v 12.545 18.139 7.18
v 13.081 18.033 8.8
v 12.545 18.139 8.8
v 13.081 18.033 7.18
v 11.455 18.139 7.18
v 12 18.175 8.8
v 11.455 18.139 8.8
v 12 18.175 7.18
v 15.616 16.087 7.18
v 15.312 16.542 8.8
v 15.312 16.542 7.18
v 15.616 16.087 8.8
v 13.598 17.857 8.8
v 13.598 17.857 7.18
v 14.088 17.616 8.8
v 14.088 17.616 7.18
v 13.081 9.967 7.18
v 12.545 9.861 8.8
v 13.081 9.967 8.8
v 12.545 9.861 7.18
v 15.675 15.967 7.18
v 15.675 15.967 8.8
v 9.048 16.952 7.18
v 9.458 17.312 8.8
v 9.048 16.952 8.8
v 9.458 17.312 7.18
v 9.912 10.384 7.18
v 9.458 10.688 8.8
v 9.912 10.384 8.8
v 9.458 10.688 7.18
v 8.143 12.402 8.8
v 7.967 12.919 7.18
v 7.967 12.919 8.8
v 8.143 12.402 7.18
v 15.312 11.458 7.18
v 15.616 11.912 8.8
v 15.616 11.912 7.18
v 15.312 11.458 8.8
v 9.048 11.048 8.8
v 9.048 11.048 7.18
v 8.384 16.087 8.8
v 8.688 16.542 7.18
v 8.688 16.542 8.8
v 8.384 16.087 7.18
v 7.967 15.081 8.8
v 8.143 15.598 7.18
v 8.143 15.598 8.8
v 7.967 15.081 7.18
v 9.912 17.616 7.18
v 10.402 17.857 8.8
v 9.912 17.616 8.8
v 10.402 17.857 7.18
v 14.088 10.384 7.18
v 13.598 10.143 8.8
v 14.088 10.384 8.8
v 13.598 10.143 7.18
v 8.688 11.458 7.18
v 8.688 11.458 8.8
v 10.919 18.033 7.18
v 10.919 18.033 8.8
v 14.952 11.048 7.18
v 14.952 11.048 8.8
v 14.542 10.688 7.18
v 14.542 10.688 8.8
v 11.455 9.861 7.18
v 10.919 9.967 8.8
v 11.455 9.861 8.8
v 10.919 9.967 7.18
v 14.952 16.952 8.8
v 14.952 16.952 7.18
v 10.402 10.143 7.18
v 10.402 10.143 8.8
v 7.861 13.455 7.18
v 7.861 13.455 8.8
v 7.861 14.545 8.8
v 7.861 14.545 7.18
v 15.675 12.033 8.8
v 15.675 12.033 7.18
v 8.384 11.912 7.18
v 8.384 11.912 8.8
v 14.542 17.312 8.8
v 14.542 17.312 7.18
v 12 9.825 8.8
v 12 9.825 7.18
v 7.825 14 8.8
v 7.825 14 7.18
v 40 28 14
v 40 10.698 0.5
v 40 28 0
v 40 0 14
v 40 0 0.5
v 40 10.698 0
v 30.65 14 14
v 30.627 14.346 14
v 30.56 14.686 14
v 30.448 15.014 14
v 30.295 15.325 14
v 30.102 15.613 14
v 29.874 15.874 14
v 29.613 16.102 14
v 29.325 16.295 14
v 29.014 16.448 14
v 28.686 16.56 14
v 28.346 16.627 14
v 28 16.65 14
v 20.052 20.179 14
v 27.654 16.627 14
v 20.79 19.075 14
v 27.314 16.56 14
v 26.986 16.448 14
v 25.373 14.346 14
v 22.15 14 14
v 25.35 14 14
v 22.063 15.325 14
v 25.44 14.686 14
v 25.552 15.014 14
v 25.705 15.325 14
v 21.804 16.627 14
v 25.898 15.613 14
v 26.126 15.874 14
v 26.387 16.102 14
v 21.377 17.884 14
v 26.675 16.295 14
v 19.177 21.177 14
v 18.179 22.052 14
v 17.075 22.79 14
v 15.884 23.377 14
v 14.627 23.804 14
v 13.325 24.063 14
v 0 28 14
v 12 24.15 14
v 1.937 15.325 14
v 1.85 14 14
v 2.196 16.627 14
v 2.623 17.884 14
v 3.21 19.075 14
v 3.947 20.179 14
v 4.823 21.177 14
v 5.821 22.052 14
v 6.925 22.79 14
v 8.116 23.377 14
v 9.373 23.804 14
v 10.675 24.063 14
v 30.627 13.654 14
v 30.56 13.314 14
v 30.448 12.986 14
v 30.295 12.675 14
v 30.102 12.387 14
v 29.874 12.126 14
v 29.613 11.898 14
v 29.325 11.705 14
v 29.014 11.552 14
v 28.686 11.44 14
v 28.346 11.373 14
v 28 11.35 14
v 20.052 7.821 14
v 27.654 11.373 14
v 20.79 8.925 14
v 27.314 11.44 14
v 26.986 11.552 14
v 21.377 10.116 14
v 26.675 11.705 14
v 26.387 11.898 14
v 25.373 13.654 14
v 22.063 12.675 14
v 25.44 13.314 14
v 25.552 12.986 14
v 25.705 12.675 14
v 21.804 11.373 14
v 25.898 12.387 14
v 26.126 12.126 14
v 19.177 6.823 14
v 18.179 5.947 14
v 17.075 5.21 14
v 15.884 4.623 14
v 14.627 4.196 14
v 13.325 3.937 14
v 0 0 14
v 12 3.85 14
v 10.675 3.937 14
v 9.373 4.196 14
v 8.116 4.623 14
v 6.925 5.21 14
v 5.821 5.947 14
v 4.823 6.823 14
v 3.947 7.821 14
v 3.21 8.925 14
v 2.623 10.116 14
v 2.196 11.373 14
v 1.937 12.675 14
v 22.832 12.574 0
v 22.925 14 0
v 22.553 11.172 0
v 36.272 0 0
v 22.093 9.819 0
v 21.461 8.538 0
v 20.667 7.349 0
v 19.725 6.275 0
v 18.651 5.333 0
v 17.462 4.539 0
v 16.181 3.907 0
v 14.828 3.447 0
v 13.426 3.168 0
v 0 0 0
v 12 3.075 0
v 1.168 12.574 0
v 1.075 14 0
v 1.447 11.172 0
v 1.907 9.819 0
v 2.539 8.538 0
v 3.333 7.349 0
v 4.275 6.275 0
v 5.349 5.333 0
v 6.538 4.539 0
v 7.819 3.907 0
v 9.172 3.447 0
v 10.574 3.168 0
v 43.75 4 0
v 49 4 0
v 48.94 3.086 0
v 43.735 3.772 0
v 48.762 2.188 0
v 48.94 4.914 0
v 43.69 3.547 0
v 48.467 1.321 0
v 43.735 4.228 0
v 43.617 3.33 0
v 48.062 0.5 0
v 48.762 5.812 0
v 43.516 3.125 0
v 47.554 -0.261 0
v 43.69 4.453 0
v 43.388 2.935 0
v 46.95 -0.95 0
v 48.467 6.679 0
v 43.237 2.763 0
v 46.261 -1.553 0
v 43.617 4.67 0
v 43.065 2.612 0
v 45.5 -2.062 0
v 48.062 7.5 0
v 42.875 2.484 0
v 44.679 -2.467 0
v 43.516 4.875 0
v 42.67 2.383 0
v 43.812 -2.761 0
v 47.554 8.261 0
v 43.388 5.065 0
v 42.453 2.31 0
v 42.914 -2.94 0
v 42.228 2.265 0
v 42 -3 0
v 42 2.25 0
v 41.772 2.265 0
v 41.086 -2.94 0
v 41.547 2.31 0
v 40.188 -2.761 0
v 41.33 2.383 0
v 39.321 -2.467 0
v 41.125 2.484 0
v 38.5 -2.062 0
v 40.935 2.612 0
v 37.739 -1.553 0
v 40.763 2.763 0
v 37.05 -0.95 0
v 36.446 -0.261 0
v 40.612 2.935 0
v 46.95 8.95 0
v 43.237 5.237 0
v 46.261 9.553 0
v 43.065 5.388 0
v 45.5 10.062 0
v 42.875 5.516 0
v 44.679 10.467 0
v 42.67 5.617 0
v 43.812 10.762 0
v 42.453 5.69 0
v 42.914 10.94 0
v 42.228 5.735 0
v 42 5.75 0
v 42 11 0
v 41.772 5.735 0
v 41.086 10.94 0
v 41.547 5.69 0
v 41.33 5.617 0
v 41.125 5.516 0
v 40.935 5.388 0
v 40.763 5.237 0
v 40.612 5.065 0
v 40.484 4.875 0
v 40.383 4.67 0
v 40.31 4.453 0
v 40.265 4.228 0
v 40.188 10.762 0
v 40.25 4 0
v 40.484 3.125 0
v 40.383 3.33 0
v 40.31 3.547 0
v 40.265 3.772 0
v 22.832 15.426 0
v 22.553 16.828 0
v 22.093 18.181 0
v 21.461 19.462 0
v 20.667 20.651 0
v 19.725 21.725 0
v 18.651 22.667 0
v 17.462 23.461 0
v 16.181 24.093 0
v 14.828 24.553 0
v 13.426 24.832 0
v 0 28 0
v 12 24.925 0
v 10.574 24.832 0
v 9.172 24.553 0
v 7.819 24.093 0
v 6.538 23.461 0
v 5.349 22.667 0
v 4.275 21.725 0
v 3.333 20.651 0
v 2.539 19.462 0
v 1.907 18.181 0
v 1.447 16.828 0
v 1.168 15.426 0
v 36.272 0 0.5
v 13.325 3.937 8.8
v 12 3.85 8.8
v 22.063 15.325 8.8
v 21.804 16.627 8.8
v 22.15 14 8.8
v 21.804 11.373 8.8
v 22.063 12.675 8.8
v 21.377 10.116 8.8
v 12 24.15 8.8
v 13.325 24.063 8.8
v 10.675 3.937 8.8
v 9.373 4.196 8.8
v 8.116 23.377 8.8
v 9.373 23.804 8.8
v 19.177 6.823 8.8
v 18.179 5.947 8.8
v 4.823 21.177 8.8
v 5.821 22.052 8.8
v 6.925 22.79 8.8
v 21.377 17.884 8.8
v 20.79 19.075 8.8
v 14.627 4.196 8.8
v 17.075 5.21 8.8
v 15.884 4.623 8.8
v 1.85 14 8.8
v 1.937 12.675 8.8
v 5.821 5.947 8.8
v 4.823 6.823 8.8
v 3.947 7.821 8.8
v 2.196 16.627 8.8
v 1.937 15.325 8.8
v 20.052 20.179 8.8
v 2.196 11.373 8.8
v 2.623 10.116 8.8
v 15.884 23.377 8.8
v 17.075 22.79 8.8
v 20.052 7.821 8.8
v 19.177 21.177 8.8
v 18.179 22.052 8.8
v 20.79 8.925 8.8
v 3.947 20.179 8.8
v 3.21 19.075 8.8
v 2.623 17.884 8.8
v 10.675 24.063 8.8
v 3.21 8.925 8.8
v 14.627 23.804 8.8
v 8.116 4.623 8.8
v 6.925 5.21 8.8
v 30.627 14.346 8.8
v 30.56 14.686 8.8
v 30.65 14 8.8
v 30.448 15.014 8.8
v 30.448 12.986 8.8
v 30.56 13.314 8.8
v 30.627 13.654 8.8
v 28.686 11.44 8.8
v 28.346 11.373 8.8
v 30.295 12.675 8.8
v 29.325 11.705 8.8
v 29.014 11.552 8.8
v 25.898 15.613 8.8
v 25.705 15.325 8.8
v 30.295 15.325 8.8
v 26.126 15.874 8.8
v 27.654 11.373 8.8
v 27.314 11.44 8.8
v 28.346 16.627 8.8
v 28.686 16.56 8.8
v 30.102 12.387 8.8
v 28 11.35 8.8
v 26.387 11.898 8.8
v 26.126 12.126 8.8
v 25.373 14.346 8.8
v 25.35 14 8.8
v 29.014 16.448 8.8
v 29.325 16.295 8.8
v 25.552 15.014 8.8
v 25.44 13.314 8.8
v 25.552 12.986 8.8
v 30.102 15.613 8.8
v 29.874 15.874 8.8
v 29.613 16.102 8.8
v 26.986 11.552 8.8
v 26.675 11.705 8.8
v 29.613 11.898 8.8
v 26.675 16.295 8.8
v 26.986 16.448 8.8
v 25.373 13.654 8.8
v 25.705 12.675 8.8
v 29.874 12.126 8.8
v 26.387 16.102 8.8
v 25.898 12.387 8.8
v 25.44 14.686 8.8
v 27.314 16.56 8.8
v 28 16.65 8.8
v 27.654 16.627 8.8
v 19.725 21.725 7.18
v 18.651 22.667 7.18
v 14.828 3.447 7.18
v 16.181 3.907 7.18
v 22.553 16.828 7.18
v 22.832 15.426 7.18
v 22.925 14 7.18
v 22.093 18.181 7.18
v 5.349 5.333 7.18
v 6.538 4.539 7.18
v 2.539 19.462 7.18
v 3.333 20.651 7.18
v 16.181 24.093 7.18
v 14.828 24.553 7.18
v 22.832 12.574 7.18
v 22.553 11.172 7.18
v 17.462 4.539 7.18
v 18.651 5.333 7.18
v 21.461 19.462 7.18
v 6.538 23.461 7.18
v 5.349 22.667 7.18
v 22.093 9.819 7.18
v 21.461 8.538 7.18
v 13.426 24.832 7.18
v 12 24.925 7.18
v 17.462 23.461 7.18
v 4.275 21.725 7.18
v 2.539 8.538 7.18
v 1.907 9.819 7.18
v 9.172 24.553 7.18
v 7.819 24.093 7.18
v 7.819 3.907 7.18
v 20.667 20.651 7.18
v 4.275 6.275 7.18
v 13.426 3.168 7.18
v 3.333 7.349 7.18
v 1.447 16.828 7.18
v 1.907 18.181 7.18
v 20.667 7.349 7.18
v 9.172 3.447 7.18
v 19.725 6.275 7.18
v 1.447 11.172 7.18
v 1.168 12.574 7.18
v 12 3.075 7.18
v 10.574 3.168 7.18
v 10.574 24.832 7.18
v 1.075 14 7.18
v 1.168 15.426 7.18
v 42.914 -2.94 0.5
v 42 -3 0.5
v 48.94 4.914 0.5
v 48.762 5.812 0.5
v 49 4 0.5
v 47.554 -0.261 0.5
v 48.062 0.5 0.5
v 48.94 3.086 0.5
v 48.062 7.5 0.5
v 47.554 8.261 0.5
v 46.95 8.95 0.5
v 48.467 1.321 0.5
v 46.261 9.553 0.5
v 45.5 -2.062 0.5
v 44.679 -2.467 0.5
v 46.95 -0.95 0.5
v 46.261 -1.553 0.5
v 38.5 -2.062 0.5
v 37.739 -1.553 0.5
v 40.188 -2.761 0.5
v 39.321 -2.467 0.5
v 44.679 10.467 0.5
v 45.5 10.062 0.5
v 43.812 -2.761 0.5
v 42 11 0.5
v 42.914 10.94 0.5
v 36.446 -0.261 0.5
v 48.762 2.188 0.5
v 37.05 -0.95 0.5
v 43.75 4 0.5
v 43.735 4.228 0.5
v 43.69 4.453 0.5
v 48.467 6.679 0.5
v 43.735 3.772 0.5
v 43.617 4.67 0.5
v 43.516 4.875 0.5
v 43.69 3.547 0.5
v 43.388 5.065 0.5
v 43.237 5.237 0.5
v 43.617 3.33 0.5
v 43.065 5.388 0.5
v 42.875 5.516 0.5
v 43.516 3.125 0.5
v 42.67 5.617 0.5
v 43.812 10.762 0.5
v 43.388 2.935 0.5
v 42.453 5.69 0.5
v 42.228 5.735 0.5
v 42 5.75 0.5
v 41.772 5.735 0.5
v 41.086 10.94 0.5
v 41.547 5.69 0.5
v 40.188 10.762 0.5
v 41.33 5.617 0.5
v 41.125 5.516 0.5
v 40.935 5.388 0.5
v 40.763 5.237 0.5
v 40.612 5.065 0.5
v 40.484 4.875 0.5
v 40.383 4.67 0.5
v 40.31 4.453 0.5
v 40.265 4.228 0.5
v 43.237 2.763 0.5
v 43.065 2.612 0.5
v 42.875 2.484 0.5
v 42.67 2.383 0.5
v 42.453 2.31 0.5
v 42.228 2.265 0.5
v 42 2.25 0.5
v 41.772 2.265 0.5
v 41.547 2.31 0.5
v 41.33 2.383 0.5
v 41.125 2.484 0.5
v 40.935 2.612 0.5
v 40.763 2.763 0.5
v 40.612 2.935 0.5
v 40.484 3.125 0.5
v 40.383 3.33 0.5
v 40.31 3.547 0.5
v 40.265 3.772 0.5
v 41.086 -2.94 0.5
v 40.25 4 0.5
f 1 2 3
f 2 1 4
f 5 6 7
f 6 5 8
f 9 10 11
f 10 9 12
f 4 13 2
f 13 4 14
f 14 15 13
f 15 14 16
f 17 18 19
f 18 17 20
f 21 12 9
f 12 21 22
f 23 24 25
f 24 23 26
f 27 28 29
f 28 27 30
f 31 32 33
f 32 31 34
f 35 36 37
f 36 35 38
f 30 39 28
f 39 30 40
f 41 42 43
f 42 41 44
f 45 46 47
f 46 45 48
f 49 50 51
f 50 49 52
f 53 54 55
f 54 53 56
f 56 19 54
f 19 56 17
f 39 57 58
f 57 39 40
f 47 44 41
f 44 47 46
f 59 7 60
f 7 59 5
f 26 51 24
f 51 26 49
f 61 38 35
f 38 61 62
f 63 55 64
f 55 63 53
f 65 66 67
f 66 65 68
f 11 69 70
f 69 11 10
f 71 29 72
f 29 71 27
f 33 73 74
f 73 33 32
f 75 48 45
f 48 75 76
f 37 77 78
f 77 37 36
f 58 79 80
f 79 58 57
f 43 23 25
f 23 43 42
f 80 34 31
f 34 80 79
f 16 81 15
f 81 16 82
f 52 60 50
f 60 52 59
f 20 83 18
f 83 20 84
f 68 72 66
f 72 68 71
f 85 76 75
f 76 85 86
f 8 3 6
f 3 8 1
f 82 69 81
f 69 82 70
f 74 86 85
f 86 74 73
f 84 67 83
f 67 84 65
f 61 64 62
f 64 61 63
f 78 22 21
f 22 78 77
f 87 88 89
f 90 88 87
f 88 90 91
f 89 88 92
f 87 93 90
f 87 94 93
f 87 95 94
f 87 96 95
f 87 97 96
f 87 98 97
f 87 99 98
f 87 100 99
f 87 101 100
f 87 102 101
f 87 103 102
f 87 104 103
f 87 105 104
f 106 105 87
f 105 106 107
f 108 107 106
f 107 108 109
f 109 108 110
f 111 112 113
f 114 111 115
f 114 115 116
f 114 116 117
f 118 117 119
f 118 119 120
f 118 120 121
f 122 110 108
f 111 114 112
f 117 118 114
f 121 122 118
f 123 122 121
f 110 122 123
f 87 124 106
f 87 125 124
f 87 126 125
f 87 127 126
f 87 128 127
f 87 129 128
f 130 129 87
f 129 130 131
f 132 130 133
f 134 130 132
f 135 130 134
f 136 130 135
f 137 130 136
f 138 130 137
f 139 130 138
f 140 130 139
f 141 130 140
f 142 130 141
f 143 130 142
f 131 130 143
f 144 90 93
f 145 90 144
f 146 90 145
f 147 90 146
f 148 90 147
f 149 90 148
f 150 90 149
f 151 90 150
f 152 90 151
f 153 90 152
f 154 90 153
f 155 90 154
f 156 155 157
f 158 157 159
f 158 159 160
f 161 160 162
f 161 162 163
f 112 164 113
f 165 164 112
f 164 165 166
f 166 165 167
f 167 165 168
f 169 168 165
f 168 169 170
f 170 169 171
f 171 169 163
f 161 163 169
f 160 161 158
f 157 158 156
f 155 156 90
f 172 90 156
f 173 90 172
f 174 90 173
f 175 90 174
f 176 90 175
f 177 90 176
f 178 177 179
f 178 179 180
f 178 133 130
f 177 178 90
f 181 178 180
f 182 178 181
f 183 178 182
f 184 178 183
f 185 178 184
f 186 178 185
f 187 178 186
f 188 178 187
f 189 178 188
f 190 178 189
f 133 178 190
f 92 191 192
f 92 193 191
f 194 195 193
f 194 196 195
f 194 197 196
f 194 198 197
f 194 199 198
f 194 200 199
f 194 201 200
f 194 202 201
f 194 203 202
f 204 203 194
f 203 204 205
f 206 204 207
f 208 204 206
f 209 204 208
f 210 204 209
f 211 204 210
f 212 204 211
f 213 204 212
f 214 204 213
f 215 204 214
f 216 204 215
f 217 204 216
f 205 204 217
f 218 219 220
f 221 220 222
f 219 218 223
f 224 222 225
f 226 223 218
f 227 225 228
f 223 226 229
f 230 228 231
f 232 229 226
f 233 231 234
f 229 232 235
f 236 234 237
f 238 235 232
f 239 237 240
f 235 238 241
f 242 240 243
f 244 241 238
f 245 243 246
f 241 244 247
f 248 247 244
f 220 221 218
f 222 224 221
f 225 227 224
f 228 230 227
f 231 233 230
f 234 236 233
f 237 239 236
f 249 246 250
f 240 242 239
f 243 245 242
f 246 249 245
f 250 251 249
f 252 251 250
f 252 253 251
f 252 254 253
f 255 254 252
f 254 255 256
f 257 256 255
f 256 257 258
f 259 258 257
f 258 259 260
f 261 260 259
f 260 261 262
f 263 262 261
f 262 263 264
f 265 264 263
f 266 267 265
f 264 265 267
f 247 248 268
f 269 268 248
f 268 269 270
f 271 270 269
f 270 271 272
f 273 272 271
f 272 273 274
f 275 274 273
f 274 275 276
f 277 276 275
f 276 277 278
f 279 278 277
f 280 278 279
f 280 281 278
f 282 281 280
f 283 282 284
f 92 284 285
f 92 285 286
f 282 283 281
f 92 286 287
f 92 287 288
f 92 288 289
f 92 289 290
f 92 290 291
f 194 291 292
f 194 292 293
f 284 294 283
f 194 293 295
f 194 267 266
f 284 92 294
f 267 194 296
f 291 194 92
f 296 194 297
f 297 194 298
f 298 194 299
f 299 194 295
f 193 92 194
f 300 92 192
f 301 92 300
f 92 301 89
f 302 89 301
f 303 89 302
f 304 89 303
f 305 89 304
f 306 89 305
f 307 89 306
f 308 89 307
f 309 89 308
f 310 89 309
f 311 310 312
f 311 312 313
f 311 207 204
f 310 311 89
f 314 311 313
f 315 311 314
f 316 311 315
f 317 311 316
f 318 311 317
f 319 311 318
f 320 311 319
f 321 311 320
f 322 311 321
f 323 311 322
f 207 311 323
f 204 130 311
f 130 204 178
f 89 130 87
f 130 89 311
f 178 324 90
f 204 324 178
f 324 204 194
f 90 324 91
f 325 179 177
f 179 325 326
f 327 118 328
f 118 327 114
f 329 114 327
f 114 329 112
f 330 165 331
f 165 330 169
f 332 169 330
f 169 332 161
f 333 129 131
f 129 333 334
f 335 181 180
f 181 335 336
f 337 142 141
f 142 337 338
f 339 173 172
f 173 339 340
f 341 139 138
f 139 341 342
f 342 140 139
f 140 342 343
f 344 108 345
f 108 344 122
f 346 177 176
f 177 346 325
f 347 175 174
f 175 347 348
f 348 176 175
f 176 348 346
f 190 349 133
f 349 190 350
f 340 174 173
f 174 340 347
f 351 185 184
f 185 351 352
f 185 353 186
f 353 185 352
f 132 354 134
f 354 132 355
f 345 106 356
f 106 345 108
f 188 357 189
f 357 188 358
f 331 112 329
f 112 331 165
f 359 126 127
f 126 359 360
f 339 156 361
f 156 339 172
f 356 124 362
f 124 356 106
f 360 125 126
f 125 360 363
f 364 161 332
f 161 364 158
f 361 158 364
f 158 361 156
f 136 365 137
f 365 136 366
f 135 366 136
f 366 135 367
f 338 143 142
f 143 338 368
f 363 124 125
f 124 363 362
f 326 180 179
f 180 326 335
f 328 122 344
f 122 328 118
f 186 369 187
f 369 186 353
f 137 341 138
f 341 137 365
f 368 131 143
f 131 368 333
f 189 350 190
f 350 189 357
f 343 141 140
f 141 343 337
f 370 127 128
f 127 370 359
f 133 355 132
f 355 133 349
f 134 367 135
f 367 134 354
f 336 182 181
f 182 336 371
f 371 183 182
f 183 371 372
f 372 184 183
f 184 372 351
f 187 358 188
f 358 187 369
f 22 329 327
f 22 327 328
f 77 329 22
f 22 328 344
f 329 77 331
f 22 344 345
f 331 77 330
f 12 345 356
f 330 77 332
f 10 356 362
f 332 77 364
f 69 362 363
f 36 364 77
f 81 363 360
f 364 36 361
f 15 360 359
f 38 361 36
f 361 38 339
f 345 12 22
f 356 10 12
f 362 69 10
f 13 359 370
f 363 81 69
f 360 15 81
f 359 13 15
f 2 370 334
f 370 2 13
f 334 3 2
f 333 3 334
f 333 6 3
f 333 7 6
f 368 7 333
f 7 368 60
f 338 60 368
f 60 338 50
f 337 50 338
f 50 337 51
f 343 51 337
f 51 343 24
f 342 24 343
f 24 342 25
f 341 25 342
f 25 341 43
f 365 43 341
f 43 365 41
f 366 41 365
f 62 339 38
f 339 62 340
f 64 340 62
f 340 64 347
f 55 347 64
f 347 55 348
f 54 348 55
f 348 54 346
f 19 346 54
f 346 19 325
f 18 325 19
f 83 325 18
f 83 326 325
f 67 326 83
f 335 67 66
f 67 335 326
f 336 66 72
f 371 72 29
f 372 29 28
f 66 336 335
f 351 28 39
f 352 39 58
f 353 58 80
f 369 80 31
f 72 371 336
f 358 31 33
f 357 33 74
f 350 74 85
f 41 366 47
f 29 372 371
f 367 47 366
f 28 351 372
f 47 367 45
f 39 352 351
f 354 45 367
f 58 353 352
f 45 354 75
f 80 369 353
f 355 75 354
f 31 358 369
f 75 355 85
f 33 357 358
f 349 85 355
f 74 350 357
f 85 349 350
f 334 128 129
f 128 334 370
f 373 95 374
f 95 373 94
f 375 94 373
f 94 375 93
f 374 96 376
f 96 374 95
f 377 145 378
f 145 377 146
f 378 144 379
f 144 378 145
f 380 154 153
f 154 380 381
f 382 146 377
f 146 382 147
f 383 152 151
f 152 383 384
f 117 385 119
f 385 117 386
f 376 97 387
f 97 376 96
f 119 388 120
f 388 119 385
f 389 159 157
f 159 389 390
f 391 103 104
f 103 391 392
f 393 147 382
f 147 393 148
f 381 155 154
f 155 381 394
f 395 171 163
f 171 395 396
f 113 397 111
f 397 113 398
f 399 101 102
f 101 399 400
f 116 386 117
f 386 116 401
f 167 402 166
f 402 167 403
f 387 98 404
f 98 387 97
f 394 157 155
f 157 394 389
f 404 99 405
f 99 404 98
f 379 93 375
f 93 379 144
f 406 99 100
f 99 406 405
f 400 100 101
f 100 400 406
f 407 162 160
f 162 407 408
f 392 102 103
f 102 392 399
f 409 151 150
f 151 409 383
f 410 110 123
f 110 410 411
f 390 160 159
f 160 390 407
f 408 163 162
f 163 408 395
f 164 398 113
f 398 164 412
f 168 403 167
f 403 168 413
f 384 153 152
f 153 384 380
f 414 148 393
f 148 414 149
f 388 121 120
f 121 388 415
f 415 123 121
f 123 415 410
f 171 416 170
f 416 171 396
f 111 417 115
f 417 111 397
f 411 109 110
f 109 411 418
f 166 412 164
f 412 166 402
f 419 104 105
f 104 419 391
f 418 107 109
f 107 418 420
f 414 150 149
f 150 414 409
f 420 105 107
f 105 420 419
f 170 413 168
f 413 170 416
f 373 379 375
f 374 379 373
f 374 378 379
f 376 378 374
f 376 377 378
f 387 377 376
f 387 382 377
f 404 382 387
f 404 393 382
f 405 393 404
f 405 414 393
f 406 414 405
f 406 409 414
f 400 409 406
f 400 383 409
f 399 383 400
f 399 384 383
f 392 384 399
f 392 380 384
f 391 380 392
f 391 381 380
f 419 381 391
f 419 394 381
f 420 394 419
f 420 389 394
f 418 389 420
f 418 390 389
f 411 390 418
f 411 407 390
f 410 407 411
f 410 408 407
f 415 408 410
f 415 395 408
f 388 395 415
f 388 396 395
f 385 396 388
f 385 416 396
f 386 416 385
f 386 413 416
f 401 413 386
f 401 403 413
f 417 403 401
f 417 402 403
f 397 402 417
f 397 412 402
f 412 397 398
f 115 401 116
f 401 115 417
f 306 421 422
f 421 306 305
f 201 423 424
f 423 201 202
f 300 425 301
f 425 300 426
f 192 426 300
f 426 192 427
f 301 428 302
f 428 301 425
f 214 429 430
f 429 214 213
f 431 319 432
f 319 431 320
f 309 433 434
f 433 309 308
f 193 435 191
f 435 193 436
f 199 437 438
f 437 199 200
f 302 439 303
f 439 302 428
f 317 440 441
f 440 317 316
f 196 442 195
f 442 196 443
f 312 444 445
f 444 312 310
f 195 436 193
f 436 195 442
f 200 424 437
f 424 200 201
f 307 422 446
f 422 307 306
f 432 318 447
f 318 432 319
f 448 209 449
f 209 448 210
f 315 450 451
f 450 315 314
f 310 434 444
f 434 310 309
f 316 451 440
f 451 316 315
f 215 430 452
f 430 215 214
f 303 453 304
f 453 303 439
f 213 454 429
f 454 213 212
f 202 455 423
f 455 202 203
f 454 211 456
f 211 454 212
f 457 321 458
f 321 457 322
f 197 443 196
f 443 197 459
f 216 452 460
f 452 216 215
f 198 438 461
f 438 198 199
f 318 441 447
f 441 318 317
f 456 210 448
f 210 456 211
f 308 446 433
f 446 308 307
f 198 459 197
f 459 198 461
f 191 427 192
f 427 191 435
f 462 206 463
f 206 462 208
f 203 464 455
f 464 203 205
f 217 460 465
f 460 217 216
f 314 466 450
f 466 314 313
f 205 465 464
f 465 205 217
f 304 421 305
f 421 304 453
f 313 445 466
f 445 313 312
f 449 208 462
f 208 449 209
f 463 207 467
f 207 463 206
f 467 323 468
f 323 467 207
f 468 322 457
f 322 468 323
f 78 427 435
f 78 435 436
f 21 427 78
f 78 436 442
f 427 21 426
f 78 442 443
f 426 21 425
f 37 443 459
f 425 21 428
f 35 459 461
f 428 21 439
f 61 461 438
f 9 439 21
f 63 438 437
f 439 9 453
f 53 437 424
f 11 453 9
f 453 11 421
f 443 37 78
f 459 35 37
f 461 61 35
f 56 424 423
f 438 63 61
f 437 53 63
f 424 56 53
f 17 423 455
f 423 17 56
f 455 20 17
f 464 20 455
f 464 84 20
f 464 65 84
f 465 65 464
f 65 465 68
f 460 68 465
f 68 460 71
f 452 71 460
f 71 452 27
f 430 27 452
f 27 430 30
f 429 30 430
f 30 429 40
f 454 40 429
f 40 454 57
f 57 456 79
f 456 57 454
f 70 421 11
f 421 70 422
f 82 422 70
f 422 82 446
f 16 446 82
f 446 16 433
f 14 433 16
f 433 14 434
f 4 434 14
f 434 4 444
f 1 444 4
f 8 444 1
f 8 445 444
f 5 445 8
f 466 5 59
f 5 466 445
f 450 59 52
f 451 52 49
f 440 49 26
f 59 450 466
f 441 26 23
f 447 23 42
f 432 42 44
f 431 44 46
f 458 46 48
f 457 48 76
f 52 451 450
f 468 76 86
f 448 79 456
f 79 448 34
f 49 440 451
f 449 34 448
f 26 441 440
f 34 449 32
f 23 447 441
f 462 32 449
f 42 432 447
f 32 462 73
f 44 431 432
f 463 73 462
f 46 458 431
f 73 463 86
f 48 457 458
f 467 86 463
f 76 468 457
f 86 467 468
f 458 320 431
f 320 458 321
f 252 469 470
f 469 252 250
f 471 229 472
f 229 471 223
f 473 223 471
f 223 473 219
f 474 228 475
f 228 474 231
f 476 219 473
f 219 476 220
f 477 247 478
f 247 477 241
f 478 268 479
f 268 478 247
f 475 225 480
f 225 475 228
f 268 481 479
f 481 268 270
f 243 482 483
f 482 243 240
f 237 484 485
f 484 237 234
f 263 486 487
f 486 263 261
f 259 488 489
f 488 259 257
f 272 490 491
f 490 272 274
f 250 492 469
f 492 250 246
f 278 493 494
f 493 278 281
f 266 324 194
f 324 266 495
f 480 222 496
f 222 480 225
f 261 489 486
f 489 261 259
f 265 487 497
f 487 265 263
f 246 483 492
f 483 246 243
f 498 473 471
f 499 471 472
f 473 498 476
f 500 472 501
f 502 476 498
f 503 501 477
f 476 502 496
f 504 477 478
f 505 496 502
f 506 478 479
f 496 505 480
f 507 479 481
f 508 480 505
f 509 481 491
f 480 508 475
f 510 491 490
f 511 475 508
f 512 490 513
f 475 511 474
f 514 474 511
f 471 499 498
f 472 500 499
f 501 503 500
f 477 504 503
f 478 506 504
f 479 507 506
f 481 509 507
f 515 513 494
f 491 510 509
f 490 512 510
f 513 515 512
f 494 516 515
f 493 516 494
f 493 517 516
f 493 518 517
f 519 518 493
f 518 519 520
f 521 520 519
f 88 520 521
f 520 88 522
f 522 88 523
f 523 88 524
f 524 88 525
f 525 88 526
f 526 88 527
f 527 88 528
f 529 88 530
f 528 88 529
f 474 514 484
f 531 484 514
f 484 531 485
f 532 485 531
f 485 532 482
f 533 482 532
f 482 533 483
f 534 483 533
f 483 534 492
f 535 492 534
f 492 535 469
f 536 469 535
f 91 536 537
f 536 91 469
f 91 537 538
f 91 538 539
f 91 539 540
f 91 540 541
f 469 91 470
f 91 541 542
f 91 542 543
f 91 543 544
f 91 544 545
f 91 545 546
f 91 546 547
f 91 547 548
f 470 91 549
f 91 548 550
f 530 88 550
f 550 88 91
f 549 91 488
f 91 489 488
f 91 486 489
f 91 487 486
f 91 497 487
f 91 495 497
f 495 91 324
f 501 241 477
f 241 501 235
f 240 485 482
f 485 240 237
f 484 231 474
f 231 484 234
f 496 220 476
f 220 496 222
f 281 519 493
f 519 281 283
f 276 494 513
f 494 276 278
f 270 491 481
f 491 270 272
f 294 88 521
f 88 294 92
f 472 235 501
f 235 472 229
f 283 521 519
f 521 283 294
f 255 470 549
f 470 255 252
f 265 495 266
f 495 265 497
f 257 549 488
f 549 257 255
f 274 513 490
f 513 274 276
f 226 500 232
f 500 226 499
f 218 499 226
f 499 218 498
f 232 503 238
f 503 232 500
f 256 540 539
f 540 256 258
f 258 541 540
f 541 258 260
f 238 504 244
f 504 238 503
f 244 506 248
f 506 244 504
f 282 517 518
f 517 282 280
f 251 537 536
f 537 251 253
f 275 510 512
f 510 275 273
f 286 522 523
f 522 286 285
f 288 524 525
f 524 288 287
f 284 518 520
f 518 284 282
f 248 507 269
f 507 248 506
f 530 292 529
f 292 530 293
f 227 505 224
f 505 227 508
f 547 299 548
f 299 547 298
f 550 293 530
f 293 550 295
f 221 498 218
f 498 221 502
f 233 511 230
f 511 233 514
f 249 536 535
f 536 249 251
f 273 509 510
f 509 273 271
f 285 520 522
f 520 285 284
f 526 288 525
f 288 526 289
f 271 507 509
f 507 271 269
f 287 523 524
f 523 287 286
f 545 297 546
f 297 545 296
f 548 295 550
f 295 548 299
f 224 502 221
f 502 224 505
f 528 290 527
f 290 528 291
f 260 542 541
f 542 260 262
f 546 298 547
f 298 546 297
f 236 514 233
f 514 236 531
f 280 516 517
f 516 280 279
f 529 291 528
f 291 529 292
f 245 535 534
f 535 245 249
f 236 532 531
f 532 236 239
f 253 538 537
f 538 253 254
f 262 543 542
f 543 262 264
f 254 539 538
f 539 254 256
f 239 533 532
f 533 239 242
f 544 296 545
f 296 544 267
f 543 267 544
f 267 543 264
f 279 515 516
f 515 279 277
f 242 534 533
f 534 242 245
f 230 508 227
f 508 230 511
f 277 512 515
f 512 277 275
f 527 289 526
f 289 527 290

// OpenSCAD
// file: parameters.scad
// =============================================================================
// Gen-BD — nightly 2026-10-03 (physics_scorer, honest magpylib watts)
// Clocking 0 deg (magnets N facing S) + D-flat keyed bore + index notch + flip-symmetric braces/bolts.
// Windable 2-piece bobbin; turns = physics_scorer turns_fit; copper only between flanges.
// former_web = 3.60 mm (taller copper vs Gen-BA 2.46) — gap grows with web (honest Bz tradeoff).
// Steel back-iron: two buyable mild-steel discs behind each rotor (score with --back-iron).
// =============================================================================
topology            = "dual_rotor";

// --- Wire / winding (physics_scorer winding-fit) -------------------------------
wire_awg            = 26;
wire_od             = 0.45;     // insulated OD mm (bare 0.405)
fill_realistic      = 0.60;     // insulated-wire area / window, hand-wound layered
turns               = 76;       // = physics_scorer turns_fit (do NOT raise)
coil_former_type    = "bobbin";
coil_core_inset     = 5.60;     // radial copper build: hub = copper boundary inset by this
wind_build_axial    = 0.0;      // nothing proud of the flanges
wind_build_radial   = 0.0;

// --- Bobbin (base + lid) ---------------------------------------------------------
coil_id_r           = 28.00;    // copper boundary sector (over the magnet track)
coil_od_r           = 50.00;
span_deg            = 22.42;    // = pitch - 2*asin((wall+0.85)/coil_id_r) -> >=1.2 mm stator web
former_web          = 3.60;     // copper height between flanges
flange_t            = 0.60;
wall                = 1.00;     // flange lip beyond copper
former_bare_h       = former_web + 2 * flange_t;
coil_envelope_h     = former_bare_h + 2 * wind_build_axial;
tab_w               = 7.0;
tab_len             = 7.0;
tab_h               = former_bare_h / 2;
pin_d               = 1.9;      // 1.75 mm filament locating pin
coil_mount_r        = coil_od_r + 0.2 + 4.0;
lead_y              = 1.6;
lead_slot_w         = 0.9;
lead_groove_d       = 0.6;

// --- Gap -------------------------------------------------------------------------
run_clear           = 0.50;     // rotor face -> flange
gap_spacer_h        = run_clear + wind_build_axial;
m2m                 = coil_envelope_h + 2 * run_clear;

// --- Stator ----------------------------------------------------------------------
coil_stations       = 12;
bay_clear           = 0.25;
stator_thick        = former_bare_h;                        // bobbins flush both faces
stator_od           = 162.0;
shaft_clear_stator  = 14.0;     // stator is static; shaft only

// --- Rotor(s) --------------------------------------------------------------------
magnet_Br           = 1.43;     // N52
halbach_magnetisation = "diametric"; // O5x5 assist magnets MUST be DIAMETRICALLY magnetised (tangential)
rotor_b_same_axis   = true;     // same-index magnets share one axis: N faces S across the gap
large_pocket_d      = 20.3;
small_pocket_d      = 5.3;
pocket_h            = 5.2;
large_n             = 8;
R_large             = 40.0;
R_small_inner       = 24.0;
R_small_mid         = 40.0;
R_small_outer       = 56.0;
carrier_od          = 160.0;
carrier_thick       = 7.5;
hub_h               = 10.0;
hub_od              = 30.0;
rotor_b_offset_deg  = 0.0;      // CLOCKING: magnets directly opposite
shaft_key           = "dflat";
dflat_depth         = 0.5;      // 8 mm shaft with 0.5 mm flat (7.5 across flat)
index_notch_d       = 3.0;

// --- Modular MAX interface (Gen-E family) -----------------------------------------
shaft_bore          = 8.35;
dflat_x             = 4.0 - dflat_depth + (shaft_bore - 8.0) / 2;
bearing_d           = 21.85;
bearing_h           = 7.2;
m3_clear            = 3.5;
bolt_r_inner        = 30.0;
bolt_n_inner        = 4;
bolt_inner_angles   = [22.5, -22.5, 157.5, 202.5];  // between poles, flip-symmetric
flange_bolt_r       = 72.0;
flange_bolt_n       = 6;
brace_r             = 68.0;
brace_d             = 4.3;
brace_n             = 4;
brace_angles        = [45, 135, 225, 315];          // flip-symmetric

spacer_pad_od       = 14.0;
spacer_pad_id       = m3_clear;
endbell_od          = 162.0;
endbell_thick       = 8.0;
endbell_shaft_clear = 10.0;
plate_max_mm        = 410;

$fn = 64;
// main file
// Gen-BD — fit coupon: O20/O5 pockets, 608 seat, D-flat bore, bobbin footprint/bay clearance strip
include <parameters.scad>;
$fn = 48;
// D-flat keyed bore: flat faces +X (angle 0 = magnet pocket 0 = index notch)
module dflat_bore(h) {
    intersection() {
        cylinder(d=shaft_bore, h=h);
        translate([-shaft_bore, -shaft_bore, 0]) cube([shaft_bore + dflat_x, 2*shaft_bore, h]);
    }
}

block_w = 40; block_d = 28; block_h = 14;
difference() {
    cube([block_w, block_d, block_h]);
    translate([12, block_d/2, block_h - pocket_h]) cylinder(d=large_pocket_d, h=pocket_h + 0.2);
    translate([28, block_d/2, block_h - pocket_h]) cylinder(d=small_pocket_d, h=pocket_h + 0.2);
    translate([12, block_d/2, -0.02]) cylinder(d=bearing_d, h=bearing_h);
    translate([12, block_d/2, -0.1]) dflat_bore(block_h + 1);
}
translate([block_w + 2, 4, 0])
    difference() {
        cylinder(d=spacer_pad_od, h=gap_spacer_h);
        translate([0, 0, -0.1]) cylinder(d=spacer_pad_id, h=gap_spacer_h + 0.2);
    }
